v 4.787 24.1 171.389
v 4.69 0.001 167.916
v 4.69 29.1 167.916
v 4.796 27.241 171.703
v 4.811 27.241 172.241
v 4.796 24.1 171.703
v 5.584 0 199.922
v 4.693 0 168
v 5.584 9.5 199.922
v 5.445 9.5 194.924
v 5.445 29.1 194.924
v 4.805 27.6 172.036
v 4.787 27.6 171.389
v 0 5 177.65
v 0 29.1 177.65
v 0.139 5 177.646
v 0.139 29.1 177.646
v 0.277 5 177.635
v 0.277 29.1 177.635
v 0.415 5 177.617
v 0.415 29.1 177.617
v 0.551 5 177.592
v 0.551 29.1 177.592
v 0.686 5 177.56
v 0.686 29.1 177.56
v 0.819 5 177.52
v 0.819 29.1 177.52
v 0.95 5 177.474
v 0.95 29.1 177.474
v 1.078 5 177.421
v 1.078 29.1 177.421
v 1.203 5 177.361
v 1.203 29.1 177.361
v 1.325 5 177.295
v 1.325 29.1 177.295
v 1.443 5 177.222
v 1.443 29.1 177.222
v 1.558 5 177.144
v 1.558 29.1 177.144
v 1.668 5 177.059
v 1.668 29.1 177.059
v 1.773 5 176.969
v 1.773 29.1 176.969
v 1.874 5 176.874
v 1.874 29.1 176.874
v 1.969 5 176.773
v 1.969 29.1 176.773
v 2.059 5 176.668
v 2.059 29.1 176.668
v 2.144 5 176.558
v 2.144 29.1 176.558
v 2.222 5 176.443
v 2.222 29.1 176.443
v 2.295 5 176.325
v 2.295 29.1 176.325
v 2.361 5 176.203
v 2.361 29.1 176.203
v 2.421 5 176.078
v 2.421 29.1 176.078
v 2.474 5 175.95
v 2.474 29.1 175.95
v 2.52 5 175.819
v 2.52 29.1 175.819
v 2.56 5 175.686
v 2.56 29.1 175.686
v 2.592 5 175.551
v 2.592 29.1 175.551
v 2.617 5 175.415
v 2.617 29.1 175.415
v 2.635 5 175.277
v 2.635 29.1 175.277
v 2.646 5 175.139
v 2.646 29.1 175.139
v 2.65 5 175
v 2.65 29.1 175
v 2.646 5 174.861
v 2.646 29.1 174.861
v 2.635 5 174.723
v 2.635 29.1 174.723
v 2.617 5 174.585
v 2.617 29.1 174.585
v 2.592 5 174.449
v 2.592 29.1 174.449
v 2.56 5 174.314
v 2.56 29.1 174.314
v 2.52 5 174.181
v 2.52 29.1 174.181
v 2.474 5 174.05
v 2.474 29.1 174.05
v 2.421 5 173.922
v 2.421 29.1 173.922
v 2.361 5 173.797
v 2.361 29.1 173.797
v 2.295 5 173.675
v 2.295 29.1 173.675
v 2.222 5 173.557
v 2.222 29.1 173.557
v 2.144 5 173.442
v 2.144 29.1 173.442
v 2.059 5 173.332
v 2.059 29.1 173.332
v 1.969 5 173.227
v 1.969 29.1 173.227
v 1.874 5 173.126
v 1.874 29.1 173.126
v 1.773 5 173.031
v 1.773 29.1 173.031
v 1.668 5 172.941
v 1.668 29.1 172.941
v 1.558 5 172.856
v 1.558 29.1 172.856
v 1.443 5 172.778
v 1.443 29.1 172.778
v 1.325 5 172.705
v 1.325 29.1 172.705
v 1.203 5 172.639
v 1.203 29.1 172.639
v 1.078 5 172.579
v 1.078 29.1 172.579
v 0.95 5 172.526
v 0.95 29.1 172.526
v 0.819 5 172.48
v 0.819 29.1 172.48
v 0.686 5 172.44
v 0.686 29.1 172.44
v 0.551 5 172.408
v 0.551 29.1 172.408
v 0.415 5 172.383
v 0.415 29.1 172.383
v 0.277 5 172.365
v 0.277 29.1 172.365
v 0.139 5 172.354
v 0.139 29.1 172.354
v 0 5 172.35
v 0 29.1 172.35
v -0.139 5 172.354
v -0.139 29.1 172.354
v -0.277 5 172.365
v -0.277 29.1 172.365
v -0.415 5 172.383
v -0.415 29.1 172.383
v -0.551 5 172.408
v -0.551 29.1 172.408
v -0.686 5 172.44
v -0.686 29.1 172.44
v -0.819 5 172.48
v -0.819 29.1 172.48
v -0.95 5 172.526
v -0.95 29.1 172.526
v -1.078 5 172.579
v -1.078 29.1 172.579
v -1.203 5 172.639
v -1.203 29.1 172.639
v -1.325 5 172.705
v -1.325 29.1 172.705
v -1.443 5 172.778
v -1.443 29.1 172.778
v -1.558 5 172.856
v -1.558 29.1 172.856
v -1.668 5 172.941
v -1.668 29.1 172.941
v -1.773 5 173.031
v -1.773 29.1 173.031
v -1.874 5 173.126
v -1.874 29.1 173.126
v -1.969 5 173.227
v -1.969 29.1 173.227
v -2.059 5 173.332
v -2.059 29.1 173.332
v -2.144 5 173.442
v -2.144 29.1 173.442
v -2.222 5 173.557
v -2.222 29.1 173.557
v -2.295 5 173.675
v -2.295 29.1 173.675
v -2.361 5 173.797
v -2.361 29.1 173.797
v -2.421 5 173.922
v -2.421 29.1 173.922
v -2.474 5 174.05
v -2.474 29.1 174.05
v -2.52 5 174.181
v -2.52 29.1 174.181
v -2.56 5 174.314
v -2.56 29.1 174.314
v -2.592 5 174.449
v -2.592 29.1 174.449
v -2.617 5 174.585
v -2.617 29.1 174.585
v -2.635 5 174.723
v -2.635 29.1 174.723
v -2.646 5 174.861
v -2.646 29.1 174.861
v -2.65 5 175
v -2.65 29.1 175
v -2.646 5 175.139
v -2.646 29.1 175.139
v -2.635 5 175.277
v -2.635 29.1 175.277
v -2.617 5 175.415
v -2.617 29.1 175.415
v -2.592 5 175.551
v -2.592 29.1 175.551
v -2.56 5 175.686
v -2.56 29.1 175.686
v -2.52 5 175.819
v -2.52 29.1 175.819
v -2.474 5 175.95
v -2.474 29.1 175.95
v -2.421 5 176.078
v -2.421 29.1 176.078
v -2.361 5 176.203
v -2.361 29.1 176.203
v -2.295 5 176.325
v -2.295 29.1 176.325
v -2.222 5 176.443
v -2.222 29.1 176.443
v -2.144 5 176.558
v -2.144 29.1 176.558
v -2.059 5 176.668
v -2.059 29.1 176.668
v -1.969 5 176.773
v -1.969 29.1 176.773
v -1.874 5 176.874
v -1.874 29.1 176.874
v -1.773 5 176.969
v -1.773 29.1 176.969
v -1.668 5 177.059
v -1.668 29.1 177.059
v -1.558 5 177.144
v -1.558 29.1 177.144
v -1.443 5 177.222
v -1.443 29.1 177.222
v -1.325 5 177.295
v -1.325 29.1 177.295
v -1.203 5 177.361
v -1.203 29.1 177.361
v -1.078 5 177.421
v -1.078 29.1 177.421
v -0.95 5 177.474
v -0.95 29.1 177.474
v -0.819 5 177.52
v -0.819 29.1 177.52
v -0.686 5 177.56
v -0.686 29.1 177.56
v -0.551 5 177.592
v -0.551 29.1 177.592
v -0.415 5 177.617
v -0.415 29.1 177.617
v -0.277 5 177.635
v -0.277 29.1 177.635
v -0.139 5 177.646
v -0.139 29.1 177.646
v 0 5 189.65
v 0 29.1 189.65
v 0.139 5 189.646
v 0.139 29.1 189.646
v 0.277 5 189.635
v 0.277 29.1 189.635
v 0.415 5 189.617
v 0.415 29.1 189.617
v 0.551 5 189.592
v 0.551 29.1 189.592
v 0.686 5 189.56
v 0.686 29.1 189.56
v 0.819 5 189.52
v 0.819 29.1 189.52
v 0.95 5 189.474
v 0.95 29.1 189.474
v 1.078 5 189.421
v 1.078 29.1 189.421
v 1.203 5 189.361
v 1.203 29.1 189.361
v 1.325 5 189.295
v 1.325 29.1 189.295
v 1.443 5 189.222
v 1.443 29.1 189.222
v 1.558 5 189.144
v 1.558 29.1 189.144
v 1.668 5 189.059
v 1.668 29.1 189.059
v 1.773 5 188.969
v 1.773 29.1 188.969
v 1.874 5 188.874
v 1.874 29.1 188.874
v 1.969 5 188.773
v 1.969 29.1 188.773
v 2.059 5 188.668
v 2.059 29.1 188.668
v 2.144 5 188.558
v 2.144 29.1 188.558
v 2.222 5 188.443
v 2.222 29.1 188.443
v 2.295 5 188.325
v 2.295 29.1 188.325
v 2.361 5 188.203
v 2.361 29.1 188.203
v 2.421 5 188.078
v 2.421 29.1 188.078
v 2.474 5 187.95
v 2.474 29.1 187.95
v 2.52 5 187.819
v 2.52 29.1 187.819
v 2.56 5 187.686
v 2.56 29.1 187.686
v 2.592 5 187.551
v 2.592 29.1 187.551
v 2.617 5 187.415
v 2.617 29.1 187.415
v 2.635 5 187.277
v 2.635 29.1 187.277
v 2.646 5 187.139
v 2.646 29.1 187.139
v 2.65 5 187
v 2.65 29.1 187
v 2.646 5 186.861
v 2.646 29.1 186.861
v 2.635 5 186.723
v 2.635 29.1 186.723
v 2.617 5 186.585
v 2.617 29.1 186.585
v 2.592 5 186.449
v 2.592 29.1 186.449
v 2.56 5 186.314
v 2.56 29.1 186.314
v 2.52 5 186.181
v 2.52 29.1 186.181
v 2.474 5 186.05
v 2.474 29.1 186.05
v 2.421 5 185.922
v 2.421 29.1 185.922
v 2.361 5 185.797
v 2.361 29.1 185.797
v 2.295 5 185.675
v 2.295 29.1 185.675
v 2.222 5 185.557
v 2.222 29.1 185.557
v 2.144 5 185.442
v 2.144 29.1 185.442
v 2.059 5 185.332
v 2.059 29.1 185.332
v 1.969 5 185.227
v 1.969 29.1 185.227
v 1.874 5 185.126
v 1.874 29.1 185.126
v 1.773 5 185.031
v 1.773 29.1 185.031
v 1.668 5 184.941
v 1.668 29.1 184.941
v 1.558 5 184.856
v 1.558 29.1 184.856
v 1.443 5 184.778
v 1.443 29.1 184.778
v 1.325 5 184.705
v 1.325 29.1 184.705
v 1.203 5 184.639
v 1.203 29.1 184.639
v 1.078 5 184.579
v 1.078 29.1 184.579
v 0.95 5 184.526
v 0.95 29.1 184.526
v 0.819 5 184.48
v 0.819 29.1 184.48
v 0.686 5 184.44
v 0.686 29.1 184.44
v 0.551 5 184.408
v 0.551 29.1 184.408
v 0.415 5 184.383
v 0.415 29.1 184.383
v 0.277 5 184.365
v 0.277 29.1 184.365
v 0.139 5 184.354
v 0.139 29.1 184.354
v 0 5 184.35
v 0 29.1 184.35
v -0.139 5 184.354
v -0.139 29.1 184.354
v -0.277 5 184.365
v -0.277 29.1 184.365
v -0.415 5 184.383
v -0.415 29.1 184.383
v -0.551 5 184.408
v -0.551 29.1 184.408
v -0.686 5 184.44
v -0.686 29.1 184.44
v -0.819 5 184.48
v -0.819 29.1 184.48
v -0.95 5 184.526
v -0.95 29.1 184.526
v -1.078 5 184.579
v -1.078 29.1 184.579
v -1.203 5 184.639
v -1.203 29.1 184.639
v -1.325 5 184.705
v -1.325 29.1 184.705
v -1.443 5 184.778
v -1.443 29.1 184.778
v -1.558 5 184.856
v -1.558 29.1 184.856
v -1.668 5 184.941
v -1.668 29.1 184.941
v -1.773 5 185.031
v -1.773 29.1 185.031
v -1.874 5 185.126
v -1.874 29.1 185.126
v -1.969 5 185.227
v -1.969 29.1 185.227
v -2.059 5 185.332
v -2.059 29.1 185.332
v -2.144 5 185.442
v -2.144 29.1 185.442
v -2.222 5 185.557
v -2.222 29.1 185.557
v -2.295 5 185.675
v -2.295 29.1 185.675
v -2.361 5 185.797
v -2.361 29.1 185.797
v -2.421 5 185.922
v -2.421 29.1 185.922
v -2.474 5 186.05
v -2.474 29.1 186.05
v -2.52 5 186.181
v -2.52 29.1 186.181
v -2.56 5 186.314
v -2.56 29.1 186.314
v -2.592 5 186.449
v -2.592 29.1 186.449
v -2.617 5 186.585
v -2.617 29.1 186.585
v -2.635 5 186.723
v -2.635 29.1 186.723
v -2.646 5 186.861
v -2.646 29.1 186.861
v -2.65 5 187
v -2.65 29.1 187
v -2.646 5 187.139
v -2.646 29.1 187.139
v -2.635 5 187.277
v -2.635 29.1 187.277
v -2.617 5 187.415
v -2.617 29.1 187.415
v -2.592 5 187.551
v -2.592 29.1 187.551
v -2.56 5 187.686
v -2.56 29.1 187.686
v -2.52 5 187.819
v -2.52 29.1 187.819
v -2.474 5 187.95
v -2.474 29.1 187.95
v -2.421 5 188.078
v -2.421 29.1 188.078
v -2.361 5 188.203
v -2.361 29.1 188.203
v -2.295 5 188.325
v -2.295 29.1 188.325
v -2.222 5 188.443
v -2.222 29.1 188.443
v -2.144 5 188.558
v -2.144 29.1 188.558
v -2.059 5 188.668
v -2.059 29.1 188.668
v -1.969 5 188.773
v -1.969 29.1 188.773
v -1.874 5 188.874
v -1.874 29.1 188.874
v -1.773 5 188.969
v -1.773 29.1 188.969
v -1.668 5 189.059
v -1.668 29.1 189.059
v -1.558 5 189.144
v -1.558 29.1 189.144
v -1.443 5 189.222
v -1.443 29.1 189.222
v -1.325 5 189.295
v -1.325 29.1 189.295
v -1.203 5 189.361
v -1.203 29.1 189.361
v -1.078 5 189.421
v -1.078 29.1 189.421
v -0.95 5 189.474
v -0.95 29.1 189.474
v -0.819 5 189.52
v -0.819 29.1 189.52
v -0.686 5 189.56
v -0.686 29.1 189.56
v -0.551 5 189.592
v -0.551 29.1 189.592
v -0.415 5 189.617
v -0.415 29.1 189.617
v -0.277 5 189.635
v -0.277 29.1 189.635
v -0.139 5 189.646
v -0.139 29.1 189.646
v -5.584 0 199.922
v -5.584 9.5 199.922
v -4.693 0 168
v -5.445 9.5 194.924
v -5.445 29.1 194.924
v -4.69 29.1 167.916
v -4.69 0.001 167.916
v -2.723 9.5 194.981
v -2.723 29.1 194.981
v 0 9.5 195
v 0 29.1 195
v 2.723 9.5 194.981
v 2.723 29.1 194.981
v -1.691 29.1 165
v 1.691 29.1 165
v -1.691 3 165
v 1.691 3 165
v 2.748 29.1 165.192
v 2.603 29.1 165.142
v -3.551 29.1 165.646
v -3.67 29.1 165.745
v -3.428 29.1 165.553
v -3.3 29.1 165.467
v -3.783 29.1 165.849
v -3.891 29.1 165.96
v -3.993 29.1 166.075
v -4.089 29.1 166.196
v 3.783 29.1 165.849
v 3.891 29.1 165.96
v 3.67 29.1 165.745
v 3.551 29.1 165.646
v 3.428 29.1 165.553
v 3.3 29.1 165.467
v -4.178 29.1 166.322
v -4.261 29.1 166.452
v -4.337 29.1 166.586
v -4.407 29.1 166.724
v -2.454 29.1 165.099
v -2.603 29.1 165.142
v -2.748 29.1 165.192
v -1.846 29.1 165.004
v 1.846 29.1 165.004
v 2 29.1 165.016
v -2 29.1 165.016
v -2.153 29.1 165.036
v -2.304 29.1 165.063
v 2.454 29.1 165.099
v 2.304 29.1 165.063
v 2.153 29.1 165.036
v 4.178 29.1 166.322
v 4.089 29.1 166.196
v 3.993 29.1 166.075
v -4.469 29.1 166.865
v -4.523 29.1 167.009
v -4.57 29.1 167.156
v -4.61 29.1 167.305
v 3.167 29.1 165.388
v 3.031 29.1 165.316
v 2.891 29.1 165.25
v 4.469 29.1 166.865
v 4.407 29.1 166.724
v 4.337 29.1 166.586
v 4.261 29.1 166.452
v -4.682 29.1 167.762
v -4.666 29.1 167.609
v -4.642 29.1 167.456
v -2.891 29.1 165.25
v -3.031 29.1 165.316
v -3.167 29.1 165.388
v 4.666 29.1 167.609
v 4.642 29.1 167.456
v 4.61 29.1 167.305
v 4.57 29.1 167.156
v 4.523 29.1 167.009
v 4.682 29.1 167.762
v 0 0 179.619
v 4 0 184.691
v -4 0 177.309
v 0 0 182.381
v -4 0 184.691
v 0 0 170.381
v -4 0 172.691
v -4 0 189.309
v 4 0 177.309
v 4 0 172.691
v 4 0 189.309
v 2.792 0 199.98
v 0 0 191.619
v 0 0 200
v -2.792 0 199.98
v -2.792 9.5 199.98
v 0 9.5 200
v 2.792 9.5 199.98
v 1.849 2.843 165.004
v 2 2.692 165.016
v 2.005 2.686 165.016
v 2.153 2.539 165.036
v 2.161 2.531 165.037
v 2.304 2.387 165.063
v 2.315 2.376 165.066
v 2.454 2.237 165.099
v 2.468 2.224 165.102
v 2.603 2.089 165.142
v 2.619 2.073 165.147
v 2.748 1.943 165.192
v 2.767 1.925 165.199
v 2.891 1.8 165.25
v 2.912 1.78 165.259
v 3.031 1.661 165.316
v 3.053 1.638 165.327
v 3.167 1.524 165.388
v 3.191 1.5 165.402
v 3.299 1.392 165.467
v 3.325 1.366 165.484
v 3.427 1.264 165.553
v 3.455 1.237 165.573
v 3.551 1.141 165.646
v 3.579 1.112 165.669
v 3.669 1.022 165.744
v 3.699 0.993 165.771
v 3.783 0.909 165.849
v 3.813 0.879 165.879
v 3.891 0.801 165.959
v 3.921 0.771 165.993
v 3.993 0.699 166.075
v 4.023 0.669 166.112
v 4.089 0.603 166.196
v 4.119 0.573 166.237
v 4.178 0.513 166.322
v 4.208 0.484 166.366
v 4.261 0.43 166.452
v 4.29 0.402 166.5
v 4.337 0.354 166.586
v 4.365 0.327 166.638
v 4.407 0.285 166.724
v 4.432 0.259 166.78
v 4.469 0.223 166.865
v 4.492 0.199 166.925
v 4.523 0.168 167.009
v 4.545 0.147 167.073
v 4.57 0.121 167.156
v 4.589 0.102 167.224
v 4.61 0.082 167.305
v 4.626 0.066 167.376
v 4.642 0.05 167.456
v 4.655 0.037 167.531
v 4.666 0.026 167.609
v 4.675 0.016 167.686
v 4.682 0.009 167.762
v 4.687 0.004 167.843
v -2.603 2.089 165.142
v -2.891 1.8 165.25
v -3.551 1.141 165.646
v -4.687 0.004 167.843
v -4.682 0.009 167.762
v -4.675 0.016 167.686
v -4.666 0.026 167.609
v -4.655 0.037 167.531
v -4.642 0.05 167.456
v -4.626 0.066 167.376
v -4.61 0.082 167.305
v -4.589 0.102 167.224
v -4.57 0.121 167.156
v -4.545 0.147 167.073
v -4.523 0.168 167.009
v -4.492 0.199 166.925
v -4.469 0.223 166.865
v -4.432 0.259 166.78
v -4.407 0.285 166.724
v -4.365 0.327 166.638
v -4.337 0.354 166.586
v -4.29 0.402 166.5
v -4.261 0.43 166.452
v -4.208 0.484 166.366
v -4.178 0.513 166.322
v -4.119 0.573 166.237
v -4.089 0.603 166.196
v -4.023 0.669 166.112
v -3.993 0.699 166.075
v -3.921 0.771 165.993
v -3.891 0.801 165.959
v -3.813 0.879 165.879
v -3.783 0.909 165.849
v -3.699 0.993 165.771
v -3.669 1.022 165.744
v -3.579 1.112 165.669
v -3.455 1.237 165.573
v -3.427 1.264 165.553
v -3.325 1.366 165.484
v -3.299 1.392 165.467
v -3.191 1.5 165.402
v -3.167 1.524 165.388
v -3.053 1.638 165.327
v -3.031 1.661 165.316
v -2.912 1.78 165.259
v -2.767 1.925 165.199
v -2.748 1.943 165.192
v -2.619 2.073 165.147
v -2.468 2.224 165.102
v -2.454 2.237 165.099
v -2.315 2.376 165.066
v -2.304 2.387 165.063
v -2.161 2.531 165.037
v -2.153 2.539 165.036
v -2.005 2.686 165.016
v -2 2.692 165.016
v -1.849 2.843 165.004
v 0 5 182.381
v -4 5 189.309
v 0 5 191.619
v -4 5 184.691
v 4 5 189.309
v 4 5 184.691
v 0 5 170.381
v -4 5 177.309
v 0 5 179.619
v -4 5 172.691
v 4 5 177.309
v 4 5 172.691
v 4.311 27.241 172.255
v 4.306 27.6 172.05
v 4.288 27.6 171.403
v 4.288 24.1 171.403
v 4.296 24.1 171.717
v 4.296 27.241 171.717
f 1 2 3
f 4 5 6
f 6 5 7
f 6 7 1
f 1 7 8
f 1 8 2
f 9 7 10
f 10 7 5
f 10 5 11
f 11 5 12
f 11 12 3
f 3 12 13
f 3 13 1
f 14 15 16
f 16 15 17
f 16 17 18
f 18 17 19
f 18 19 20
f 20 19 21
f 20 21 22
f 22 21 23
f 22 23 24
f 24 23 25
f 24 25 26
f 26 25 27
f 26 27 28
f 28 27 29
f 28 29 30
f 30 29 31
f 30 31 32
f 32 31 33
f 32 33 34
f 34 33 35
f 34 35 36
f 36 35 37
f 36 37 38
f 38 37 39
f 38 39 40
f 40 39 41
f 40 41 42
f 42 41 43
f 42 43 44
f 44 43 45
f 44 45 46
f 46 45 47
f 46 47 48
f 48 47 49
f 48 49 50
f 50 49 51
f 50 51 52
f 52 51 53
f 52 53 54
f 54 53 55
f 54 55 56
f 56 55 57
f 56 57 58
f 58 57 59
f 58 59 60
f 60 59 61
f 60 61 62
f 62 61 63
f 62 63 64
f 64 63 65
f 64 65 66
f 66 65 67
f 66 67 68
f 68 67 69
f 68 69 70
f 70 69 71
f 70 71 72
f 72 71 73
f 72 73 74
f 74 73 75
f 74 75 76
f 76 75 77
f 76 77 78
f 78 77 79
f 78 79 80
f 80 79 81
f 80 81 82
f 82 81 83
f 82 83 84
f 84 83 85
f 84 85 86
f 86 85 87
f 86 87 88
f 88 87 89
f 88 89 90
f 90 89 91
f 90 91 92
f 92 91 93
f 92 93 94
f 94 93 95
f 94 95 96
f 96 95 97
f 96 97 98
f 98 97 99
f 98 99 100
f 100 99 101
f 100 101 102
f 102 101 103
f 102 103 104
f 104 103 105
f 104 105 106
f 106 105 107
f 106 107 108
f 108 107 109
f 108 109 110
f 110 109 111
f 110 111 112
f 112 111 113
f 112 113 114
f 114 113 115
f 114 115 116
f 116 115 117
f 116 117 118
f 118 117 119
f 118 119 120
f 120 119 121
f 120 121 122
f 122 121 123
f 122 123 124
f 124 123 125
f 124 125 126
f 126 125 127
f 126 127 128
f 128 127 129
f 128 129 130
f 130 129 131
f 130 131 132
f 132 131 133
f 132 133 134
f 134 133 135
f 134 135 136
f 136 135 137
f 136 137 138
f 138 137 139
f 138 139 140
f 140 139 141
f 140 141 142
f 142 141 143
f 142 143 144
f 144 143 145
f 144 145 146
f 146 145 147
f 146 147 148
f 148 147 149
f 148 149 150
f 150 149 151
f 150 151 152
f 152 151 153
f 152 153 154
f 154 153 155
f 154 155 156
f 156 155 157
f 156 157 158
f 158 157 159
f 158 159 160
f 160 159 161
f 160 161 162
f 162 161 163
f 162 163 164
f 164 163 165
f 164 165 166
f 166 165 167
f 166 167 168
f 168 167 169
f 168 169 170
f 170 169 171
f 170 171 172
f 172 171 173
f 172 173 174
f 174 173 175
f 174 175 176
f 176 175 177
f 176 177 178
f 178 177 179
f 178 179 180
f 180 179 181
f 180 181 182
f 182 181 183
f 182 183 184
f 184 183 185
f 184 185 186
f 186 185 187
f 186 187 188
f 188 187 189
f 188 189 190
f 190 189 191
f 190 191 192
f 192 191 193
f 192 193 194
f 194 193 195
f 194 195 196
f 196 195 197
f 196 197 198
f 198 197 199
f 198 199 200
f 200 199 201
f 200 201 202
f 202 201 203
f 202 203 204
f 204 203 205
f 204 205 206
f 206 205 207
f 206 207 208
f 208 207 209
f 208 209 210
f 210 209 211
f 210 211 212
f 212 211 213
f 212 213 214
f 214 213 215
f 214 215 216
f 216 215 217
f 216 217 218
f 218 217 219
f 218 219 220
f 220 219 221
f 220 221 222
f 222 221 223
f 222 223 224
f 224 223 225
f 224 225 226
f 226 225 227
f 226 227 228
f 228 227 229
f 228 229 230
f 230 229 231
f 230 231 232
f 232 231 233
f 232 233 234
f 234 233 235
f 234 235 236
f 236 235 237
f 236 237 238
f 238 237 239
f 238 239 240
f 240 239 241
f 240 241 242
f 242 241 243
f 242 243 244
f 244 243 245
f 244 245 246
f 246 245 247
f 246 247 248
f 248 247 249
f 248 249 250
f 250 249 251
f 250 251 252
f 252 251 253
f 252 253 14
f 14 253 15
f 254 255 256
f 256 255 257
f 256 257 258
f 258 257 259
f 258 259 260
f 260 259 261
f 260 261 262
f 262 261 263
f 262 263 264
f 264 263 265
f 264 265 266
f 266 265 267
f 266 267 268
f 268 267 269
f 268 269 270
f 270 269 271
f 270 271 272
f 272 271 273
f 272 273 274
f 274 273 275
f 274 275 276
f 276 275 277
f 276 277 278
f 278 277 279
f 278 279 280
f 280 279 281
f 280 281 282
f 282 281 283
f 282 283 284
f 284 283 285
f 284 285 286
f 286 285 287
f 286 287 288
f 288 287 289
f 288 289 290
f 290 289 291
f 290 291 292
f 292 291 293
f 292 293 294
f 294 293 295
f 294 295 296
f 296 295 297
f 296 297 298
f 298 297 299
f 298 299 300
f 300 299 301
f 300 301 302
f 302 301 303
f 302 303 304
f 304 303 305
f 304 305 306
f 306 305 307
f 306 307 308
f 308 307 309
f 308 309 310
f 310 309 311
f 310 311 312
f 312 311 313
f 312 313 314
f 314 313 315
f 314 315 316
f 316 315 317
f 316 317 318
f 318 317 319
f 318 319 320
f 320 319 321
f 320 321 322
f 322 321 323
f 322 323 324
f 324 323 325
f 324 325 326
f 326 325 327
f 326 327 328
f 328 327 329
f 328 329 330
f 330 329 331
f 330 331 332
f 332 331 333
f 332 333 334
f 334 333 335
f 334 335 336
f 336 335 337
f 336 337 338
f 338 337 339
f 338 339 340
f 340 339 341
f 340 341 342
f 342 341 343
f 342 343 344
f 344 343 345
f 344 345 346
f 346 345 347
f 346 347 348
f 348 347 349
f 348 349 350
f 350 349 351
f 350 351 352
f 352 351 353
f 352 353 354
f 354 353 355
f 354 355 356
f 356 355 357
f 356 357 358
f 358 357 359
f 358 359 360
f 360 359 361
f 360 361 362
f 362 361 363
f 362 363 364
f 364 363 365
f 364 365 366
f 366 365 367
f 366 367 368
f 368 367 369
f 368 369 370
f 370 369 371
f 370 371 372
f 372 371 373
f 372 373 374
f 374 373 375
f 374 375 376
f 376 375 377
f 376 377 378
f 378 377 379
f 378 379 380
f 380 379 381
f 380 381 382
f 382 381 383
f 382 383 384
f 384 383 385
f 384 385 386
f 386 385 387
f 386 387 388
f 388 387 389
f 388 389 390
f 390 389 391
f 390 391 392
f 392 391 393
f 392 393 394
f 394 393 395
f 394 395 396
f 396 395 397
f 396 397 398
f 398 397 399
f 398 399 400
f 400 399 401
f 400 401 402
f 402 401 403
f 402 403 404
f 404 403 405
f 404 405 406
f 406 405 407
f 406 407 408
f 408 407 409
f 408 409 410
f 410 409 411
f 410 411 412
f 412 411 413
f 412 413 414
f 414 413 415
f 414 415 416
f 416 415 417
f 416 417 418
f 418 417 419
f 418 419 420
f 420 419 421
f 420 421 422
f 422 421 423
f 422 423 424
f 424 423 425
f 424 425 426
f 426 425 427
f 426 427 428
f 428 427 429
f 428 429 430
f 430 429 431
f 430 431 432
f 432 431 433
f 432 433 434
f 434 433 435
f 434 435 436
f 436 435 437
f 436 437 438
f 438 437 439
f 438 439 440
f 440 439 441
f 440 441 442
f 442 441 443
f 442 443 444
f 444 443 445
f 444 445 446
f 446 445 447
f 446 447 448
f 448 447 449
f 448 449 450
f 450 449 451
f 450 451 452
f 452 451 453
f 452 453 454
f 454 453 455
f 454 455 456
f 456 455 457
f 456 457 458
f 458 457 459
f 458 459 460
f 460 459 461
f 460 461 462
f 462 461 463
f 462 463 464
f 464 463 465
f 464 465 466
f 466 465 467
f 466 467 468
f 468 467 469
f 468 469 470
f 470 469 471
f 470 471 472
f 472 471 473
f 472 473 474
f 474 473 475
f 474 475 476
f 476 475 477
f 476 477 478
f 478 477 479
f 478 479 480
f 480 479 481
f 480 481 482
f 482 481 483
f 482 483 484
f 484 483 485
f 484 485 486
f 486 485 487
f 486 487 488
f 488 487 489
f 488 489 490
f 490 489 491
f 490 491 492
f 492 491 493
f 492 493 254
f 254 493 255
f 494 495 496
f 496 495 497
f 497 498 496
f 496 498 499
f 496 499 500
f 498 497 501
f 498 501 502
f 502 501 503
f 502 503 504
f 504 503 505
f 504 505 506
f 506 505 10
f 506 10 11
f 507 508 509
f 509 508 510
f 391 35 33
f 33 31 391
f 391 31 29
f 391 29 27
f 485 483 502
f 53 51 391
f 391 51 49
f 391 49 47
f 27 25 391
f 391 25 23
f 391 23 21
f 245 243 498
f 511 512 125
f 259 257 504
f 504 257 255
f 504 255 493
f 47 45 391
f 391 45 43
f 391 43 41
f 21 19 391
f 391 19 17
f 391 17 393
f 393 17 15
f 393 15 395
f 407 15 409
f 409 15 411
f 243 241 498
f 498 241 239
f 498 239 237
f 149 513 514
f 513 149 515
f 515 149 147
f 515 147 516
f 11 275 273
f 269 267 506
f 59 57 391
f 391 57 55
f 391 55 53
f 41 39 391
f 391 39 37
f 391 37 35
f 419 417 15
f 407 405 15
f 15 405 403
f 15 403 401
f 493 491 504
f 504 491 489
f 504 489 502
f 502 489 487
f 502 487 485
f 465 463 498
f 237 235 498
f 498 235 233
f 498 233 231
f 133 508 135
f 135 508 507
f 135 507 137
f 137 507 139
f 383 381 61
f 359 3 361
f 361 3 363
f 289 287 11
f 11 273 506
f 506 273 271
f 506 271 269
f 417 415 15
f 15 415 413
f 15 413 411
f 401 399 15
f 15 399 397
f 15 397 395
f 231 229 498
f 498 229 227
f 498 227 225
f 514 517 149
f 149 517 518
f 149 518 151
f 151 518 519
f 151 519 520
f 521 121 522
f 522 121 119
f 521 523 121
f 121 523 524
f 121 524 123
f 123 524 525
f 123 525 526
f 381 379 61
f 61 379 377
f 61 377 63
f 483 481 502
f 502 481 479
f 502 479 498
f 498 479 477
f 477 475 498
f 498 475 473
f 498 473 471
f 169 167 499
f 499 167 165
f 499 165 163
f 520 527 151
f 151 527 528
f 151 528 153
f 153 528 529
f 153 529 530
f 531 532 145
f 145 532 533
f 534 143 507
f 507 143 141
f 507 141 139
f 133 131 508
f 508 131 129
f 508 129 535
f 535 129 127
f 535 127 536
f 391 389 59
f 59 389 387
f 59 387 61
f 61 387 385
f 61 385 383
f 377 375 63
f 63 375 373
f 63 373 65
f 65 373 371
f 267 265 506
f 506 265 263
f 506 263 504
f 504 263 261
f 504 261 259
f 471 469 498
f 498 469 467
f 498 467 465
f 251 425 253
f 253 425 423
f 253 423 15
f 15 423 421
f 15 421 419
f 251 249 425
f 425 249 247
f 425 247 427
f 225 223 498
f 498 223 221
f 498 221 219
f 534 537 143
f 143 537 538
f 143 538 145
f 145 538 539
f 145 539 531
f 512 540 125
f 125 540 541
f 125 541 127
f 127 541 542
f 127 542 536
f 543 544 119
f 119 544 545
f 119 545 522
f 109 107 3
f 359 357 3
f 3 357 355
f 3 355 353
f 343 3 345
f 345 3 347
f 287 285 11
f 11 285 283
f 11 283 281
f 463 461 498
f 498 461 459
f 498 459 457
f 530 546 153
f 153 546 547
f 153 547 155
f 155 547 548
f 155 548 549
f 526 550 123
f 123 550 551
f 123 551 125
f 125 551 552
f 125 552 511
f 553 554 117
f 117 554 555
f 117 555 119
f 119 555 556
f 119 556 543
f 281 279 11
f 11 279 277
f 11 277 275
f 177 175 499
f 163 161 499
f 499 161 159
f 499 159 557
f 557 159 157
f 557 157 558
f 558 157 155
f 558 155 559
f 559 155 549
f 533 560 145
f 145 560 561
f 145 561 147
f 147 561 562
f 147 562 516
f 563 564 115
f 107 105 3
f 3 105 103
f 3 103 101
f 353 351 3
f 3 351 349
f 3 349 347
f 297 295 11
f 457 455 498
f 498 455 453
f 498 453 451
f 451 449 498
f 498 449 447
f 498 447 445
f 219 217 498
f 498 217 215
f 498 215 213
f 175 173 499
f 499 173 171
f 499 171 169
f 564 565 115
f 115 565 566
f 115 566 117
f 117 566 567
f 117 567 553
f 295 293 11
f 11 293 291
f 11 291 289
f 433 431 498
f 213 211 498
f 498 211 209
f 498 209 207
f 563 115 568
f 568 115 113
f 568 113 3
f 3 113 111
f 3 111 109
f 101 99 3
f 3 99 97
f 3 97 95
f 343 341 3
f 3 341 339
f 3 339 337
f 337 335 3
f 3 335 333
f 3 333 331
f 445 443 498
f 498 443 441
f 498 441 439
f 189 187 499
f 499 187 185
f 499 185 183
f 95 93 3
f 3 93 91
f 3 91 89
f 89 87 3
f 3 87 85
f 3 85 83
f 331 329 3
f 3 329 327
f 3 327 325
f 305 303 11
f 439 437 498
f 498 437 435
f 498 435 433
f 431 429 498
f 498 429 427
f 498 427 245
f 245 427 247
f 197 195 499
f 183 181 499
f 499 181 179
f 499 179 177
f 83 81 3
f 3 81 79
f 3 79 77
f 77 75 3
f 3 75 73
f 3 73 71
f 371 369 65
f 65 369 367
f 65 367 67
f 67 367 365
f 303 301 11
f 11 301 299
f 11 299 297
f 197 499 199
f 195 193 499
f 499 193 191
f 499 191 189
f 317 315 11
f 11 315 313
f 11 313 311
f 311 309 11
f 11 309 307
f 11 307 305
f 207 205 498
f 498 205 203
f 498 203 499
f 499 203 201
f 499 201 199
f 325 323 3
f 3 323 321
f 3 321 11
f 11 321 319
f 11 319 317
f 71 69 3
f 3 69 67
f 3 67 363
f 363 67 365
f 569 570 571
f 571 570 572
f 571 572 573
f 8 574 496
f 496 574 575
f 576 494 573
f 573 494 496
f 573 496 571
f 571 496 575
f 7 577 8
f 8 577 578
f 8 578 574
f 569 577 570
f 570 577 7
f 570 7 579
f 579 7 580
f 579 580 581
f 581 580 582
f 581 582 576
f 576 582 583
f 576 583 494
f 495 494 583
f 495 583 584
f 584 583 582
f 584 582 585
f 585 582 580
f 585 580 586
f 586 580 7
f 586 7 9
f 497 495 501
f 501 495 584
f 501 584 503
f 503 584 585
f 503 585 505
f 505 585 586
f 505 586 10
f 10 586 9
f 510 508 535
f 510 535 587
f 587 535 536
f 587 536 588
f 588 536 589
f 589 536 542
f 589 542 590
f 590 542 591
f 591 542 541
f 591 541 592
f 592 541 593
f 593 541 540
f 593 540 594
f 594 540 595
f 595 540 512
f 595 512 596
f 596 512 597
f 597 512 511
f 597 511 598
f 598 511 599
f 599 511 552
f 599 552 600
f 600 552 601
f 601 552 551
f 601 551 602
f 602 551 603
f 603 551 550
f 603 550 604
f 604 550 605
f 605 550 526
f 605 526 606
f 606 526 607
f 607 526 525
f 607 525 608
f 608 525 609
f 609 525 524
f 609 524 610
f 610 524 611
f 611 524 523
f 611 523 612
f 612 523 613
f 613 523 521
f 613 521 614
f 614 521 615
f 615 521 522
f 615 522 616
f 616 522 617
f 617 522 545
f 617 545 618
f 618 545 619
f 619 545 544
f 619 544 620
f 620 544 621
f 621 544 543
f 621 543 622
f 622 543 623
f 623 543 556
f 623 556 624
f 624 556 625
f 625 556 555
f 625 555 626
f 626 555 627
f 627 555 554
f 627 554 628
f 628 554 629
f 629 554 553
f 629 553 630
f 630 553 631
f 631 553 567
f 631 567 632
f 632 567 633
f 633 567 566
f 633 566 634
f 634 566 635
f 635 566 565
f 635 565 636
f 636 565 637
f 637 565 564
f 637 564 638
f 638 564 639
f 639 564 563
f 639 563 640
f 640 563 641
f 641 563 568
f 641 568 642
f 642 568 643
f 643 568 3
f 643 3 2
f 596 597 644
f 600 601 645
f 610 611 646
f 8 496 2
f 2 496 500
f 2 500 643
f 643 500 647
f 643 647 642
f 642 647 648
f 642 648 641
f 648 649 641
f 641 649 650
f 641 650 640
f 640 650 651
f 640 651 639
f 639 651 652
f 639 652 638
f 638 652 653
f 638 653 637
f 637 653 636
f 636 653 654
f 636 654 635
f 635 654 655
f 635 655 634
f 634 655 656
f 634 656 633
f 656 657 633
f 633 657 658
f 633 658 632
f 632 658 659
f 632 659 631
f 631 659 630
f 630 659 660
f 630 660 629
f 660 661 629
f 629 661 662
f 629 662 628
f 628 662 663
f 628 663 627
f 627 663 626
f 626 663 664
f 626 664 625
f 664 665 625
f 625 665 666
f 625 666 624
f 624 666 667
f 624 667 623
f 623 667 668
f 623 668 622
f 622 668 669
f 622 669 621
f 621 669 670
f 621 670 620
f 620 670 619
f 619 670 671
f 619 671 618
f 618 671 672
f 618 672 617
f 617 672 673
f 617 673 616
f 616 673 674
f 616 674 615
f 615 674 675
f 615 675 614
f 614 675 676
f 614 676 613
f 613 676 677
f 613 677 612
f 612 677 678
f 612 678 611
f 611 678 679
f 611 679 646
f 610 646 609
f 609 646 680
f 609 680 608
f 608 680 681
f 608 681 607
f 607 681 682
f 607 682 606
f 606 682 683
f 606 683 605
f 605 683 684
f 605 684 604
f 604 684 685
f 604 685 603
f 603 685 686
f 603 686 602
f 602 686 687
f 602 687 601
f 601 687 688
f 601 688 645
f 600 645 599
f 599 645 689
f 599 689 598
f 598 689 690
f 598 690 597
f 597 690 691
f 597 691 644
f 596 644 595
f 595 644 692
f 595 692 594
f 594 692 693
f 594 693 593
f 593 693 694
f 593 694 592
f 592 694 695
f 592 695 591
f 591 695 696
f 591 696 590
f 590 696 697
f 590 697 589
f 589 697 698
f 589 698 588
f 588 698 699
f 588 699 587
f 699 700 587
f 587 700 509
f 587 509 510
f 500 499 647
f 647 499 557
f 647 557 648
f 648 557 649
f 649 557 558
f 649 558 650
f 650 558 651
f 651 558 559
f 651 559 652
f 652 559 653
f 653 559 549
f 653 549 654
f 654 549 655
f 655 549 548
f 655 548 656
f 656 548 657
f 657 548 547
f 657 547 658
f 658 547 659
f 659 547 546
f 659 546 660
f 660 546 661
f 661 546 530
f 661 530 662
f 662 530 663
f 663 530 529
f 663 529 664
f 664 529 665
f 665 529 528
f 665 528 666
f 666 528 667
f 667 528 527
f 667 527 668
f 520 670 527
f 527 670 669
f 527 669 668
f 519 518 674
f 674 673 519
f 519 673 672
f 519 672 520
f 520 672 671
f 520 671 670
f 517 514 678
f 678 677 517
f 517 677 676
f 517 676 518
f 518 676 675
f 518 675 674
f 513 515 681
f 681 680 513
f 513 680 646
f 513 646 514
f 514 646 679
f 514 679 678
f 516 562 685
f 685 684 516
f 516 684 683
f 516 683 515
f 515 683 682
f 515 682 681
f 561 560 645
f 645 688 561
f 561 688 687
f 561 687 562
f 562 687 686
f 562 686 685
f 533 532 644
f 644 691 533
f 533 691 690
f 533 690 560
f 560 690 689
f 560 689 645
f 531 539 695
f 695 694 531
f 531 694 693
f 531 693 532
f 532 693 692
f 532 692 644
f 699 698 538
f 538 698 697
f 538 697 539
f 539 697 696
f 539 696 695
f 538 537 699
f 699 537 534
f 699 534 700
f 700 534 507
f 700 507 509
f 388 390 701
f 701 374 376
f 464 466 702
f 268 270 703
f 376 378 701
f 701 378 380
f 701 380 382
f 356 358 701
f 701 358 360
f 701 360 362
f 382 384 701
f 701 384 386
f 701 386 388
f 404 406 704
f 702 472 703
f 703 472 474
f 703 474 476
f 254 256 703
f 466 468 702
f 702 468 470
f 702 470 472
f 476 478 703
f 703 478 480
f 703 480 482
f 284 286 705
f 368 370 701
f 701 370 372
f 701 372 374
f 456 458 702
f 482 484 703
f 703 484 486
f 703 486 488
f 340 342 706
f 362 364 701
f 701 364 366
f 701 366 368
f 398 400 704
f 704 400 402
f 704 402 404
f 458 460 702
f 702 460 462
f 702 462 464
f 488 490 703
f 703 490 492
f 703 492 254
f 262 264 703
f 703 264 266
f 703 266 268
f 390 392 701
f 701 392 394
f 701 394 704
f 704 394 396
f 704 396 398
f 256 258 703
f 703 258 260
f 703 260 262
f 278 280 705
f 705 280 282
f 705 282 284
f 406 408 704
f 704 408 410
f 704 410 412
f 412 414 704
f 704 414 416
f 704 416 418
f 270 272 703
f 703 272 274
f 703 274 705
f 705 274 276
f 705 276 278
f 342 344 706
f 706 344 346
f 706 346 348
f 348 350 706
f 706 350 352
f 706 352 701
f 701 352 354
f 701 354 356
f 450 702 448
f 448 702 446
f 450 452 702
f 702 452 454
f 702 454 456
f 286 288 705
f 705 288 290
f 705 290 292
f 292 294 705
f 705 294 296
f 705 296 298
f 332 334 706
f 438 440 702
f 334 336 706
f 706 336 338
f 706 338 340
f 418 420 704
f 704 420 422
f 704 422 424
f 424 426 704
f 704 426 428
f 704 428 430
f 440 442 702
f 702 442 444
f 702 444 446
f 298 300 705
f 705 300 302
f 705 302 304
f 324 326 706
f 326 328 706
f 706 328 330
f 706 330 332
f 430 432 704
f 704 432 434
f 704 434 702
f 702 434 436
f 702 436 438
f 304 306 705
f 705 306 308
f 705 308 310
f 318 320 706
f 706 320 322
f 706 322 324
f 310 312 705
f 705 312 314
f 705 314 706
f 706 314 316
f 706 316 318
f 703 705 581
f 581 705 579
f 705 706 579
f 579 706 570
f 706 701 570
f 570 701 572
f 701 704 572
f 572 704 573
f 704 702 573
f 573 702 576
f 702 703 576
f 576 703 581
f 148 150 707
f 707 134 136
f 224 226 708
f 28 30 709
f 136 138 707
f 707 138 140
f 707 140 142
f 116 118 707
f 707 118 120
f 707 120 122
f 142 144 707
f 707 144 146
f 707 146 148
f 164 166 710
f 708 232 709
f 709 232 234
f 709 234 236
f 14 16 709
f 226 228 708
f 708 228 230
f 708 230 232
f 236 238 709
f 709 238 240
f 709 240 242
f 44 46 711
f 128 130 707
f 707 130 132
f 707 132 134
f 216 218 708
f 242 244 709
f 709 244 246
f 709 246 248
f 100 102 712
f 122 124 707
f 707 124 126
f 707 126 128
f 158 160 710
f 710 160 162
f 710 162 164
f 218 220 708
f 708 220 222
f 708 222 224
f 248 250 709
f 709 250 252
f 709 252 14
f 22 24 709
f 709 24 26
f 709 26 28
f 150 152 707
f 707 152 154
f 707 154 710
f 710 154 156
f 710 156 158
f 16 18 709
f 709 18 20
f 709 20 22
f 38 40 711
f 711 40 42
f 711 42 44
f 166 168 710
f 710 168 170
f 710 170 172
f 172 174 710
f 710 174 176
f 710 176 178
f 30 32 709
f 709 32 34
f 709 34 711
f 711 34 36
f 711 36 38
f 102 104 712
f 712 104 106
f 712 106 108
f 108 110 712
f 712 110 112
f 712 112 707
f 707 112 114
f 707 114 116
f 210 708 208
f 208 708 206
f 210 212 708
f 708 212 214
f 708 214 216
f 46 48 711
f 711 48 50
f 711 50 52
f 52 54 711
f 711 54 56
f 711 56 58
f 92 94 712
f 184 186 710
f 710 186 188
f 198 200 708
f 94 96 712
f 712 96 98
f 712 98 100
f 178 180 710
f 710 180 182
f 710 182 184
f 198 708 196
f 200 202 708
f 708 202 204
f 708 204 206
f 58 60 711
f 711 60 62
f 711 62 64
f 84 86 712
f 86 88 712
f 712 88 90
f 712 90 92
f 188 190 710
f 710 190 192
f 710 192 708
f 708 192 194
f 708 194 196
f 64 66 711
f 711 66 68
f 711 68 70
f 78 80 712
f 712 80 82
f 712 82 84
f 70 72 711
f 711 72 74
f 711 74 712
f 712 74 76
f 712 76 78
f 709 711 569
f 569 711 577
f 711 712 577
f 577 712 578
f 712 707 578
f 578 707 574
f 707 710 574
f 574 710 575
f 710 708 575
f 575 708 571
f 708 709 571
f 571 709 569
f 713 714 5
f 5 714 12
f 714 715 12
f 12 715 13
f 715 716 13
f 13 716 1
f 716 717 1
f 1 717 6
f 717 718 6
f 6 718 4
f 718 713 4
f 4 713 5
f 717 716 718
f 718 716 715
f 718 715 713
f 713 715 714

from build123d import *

# Parameters (mm, degrees)
EXTRUDE_590_DEPTH   = 29.1
EXTRUDE_638_DEPTH   = 9.5
FILLET_1_R          = 3
HOLE_WIZARD_M5_1_D  = 5.3
CUT_EXTRUDE_1_DEPTH = 5
CUT_EXTRUDE_2_DEPTH = 0.5


with BuildPart() as part:
    # 草图1 → Extrude 590 (new body)
    with BuildSketch(Plane(origin=(0, 0, 0), x_dir=(1, 0, 0), z_dir=(0, 1, 0))):
        with BuildLine():
            Line((4.608867317, -165), (-4.608867317, -165))
            Line((-4.608867317, -165), (-5.444719551, -194.923972433))
            ThreePointArc((-5.444719551, -194.923972433), (0, -195), (5.444719551, -194.923972433))
            Line((5.444719551, -194.923972433), (4.608867317, -165))
        make_face()
    extrude(amount=EXTRUDE_590_DEPTH)

    # 草图1<3> → Extrude 638 (add)
    with BuildSketch(Plane(origin=(0, 0, 0), x_dir=(1, 0, 0), z_dir=(0, 1, 0))):
        with BuildLine():
            ThreePointArc((5.444719551, -194.923972433), (0, -195), (-5.444719551, -194.923972433))
            Line((-5.444719551, -194.923972433), (-5.584327745, -199.922023008))
            ThreePointArc((-5.584327745, -199.922023008), (0, -200), (5.584327745, -199.922023008))
            Line((5.584327745, -199.922023008), (5.444719551, -194.923972433))
        make_face()
    extrude(amount=EXTRUDE_638_DEPTH)

    # 圆角1
    fillet_1_edges = [part.edges().sort_by_distance(p)[0] for p in [
        (4.608867317, 14.55, 165),
        (0, 0, 165),
        (-4.608867317, 14.55, 165),
    ]]
    fillet(fillet_1_edges, radius=FILLET_1_R)

    # M5 间隙孔1 (through all)
    with Locations(Plane(origin=(0, 29.1, 0), x_dir=(1, 0, 0), z_dir=(0, 1, 0))):
        with Locations((0, -187), (0, -175)):
            Hole(HOLE_WIZARD_M5_1_D / 2)

    # 草图6 → 切除-拉伸1 (cut)
    with BuildSketch(Plane.XZ):
        Polygon((0, 179.618802154), (-4, 177.309401077), (-4, 172.690598923), (0, 170.381197846), (4, 172.690598923), (4, 177.309401077), align=None)
        Polygon((0, 191.618802154), (-4, 189.309401077), (-4, 184.690598923), (0, 182.381197846), (4, 184.690598923), (4, 189.309401077), align=None)
    extrude(amount=-CUT_EXTRUDE_1_DEPTH, mode=Mode.SUBTRACT)

    # 草图7 → 切除-拉伸2 (cut)
    with BuildSketch(Plane(origin=(0, 0, 0), x_dir=(-0.027921638723569116, 0, -0.9996101150403545), z_dir=(0.9996101150403545, 0, -0.027921638723569116))):
        Polygon((-172.103223024, 27.6), (-171.456087608, 27.6), (-171.456087608, 24.1), (-171.770190172, 24.1), (-171.770190172, 27.241025641), (-172.30865171, 27.241025641), align=None)
    extrude(amount=-CUT_EXTRUDE_2_DEPTH, mode=Mode.SUBTRACT)


solid = part.part
